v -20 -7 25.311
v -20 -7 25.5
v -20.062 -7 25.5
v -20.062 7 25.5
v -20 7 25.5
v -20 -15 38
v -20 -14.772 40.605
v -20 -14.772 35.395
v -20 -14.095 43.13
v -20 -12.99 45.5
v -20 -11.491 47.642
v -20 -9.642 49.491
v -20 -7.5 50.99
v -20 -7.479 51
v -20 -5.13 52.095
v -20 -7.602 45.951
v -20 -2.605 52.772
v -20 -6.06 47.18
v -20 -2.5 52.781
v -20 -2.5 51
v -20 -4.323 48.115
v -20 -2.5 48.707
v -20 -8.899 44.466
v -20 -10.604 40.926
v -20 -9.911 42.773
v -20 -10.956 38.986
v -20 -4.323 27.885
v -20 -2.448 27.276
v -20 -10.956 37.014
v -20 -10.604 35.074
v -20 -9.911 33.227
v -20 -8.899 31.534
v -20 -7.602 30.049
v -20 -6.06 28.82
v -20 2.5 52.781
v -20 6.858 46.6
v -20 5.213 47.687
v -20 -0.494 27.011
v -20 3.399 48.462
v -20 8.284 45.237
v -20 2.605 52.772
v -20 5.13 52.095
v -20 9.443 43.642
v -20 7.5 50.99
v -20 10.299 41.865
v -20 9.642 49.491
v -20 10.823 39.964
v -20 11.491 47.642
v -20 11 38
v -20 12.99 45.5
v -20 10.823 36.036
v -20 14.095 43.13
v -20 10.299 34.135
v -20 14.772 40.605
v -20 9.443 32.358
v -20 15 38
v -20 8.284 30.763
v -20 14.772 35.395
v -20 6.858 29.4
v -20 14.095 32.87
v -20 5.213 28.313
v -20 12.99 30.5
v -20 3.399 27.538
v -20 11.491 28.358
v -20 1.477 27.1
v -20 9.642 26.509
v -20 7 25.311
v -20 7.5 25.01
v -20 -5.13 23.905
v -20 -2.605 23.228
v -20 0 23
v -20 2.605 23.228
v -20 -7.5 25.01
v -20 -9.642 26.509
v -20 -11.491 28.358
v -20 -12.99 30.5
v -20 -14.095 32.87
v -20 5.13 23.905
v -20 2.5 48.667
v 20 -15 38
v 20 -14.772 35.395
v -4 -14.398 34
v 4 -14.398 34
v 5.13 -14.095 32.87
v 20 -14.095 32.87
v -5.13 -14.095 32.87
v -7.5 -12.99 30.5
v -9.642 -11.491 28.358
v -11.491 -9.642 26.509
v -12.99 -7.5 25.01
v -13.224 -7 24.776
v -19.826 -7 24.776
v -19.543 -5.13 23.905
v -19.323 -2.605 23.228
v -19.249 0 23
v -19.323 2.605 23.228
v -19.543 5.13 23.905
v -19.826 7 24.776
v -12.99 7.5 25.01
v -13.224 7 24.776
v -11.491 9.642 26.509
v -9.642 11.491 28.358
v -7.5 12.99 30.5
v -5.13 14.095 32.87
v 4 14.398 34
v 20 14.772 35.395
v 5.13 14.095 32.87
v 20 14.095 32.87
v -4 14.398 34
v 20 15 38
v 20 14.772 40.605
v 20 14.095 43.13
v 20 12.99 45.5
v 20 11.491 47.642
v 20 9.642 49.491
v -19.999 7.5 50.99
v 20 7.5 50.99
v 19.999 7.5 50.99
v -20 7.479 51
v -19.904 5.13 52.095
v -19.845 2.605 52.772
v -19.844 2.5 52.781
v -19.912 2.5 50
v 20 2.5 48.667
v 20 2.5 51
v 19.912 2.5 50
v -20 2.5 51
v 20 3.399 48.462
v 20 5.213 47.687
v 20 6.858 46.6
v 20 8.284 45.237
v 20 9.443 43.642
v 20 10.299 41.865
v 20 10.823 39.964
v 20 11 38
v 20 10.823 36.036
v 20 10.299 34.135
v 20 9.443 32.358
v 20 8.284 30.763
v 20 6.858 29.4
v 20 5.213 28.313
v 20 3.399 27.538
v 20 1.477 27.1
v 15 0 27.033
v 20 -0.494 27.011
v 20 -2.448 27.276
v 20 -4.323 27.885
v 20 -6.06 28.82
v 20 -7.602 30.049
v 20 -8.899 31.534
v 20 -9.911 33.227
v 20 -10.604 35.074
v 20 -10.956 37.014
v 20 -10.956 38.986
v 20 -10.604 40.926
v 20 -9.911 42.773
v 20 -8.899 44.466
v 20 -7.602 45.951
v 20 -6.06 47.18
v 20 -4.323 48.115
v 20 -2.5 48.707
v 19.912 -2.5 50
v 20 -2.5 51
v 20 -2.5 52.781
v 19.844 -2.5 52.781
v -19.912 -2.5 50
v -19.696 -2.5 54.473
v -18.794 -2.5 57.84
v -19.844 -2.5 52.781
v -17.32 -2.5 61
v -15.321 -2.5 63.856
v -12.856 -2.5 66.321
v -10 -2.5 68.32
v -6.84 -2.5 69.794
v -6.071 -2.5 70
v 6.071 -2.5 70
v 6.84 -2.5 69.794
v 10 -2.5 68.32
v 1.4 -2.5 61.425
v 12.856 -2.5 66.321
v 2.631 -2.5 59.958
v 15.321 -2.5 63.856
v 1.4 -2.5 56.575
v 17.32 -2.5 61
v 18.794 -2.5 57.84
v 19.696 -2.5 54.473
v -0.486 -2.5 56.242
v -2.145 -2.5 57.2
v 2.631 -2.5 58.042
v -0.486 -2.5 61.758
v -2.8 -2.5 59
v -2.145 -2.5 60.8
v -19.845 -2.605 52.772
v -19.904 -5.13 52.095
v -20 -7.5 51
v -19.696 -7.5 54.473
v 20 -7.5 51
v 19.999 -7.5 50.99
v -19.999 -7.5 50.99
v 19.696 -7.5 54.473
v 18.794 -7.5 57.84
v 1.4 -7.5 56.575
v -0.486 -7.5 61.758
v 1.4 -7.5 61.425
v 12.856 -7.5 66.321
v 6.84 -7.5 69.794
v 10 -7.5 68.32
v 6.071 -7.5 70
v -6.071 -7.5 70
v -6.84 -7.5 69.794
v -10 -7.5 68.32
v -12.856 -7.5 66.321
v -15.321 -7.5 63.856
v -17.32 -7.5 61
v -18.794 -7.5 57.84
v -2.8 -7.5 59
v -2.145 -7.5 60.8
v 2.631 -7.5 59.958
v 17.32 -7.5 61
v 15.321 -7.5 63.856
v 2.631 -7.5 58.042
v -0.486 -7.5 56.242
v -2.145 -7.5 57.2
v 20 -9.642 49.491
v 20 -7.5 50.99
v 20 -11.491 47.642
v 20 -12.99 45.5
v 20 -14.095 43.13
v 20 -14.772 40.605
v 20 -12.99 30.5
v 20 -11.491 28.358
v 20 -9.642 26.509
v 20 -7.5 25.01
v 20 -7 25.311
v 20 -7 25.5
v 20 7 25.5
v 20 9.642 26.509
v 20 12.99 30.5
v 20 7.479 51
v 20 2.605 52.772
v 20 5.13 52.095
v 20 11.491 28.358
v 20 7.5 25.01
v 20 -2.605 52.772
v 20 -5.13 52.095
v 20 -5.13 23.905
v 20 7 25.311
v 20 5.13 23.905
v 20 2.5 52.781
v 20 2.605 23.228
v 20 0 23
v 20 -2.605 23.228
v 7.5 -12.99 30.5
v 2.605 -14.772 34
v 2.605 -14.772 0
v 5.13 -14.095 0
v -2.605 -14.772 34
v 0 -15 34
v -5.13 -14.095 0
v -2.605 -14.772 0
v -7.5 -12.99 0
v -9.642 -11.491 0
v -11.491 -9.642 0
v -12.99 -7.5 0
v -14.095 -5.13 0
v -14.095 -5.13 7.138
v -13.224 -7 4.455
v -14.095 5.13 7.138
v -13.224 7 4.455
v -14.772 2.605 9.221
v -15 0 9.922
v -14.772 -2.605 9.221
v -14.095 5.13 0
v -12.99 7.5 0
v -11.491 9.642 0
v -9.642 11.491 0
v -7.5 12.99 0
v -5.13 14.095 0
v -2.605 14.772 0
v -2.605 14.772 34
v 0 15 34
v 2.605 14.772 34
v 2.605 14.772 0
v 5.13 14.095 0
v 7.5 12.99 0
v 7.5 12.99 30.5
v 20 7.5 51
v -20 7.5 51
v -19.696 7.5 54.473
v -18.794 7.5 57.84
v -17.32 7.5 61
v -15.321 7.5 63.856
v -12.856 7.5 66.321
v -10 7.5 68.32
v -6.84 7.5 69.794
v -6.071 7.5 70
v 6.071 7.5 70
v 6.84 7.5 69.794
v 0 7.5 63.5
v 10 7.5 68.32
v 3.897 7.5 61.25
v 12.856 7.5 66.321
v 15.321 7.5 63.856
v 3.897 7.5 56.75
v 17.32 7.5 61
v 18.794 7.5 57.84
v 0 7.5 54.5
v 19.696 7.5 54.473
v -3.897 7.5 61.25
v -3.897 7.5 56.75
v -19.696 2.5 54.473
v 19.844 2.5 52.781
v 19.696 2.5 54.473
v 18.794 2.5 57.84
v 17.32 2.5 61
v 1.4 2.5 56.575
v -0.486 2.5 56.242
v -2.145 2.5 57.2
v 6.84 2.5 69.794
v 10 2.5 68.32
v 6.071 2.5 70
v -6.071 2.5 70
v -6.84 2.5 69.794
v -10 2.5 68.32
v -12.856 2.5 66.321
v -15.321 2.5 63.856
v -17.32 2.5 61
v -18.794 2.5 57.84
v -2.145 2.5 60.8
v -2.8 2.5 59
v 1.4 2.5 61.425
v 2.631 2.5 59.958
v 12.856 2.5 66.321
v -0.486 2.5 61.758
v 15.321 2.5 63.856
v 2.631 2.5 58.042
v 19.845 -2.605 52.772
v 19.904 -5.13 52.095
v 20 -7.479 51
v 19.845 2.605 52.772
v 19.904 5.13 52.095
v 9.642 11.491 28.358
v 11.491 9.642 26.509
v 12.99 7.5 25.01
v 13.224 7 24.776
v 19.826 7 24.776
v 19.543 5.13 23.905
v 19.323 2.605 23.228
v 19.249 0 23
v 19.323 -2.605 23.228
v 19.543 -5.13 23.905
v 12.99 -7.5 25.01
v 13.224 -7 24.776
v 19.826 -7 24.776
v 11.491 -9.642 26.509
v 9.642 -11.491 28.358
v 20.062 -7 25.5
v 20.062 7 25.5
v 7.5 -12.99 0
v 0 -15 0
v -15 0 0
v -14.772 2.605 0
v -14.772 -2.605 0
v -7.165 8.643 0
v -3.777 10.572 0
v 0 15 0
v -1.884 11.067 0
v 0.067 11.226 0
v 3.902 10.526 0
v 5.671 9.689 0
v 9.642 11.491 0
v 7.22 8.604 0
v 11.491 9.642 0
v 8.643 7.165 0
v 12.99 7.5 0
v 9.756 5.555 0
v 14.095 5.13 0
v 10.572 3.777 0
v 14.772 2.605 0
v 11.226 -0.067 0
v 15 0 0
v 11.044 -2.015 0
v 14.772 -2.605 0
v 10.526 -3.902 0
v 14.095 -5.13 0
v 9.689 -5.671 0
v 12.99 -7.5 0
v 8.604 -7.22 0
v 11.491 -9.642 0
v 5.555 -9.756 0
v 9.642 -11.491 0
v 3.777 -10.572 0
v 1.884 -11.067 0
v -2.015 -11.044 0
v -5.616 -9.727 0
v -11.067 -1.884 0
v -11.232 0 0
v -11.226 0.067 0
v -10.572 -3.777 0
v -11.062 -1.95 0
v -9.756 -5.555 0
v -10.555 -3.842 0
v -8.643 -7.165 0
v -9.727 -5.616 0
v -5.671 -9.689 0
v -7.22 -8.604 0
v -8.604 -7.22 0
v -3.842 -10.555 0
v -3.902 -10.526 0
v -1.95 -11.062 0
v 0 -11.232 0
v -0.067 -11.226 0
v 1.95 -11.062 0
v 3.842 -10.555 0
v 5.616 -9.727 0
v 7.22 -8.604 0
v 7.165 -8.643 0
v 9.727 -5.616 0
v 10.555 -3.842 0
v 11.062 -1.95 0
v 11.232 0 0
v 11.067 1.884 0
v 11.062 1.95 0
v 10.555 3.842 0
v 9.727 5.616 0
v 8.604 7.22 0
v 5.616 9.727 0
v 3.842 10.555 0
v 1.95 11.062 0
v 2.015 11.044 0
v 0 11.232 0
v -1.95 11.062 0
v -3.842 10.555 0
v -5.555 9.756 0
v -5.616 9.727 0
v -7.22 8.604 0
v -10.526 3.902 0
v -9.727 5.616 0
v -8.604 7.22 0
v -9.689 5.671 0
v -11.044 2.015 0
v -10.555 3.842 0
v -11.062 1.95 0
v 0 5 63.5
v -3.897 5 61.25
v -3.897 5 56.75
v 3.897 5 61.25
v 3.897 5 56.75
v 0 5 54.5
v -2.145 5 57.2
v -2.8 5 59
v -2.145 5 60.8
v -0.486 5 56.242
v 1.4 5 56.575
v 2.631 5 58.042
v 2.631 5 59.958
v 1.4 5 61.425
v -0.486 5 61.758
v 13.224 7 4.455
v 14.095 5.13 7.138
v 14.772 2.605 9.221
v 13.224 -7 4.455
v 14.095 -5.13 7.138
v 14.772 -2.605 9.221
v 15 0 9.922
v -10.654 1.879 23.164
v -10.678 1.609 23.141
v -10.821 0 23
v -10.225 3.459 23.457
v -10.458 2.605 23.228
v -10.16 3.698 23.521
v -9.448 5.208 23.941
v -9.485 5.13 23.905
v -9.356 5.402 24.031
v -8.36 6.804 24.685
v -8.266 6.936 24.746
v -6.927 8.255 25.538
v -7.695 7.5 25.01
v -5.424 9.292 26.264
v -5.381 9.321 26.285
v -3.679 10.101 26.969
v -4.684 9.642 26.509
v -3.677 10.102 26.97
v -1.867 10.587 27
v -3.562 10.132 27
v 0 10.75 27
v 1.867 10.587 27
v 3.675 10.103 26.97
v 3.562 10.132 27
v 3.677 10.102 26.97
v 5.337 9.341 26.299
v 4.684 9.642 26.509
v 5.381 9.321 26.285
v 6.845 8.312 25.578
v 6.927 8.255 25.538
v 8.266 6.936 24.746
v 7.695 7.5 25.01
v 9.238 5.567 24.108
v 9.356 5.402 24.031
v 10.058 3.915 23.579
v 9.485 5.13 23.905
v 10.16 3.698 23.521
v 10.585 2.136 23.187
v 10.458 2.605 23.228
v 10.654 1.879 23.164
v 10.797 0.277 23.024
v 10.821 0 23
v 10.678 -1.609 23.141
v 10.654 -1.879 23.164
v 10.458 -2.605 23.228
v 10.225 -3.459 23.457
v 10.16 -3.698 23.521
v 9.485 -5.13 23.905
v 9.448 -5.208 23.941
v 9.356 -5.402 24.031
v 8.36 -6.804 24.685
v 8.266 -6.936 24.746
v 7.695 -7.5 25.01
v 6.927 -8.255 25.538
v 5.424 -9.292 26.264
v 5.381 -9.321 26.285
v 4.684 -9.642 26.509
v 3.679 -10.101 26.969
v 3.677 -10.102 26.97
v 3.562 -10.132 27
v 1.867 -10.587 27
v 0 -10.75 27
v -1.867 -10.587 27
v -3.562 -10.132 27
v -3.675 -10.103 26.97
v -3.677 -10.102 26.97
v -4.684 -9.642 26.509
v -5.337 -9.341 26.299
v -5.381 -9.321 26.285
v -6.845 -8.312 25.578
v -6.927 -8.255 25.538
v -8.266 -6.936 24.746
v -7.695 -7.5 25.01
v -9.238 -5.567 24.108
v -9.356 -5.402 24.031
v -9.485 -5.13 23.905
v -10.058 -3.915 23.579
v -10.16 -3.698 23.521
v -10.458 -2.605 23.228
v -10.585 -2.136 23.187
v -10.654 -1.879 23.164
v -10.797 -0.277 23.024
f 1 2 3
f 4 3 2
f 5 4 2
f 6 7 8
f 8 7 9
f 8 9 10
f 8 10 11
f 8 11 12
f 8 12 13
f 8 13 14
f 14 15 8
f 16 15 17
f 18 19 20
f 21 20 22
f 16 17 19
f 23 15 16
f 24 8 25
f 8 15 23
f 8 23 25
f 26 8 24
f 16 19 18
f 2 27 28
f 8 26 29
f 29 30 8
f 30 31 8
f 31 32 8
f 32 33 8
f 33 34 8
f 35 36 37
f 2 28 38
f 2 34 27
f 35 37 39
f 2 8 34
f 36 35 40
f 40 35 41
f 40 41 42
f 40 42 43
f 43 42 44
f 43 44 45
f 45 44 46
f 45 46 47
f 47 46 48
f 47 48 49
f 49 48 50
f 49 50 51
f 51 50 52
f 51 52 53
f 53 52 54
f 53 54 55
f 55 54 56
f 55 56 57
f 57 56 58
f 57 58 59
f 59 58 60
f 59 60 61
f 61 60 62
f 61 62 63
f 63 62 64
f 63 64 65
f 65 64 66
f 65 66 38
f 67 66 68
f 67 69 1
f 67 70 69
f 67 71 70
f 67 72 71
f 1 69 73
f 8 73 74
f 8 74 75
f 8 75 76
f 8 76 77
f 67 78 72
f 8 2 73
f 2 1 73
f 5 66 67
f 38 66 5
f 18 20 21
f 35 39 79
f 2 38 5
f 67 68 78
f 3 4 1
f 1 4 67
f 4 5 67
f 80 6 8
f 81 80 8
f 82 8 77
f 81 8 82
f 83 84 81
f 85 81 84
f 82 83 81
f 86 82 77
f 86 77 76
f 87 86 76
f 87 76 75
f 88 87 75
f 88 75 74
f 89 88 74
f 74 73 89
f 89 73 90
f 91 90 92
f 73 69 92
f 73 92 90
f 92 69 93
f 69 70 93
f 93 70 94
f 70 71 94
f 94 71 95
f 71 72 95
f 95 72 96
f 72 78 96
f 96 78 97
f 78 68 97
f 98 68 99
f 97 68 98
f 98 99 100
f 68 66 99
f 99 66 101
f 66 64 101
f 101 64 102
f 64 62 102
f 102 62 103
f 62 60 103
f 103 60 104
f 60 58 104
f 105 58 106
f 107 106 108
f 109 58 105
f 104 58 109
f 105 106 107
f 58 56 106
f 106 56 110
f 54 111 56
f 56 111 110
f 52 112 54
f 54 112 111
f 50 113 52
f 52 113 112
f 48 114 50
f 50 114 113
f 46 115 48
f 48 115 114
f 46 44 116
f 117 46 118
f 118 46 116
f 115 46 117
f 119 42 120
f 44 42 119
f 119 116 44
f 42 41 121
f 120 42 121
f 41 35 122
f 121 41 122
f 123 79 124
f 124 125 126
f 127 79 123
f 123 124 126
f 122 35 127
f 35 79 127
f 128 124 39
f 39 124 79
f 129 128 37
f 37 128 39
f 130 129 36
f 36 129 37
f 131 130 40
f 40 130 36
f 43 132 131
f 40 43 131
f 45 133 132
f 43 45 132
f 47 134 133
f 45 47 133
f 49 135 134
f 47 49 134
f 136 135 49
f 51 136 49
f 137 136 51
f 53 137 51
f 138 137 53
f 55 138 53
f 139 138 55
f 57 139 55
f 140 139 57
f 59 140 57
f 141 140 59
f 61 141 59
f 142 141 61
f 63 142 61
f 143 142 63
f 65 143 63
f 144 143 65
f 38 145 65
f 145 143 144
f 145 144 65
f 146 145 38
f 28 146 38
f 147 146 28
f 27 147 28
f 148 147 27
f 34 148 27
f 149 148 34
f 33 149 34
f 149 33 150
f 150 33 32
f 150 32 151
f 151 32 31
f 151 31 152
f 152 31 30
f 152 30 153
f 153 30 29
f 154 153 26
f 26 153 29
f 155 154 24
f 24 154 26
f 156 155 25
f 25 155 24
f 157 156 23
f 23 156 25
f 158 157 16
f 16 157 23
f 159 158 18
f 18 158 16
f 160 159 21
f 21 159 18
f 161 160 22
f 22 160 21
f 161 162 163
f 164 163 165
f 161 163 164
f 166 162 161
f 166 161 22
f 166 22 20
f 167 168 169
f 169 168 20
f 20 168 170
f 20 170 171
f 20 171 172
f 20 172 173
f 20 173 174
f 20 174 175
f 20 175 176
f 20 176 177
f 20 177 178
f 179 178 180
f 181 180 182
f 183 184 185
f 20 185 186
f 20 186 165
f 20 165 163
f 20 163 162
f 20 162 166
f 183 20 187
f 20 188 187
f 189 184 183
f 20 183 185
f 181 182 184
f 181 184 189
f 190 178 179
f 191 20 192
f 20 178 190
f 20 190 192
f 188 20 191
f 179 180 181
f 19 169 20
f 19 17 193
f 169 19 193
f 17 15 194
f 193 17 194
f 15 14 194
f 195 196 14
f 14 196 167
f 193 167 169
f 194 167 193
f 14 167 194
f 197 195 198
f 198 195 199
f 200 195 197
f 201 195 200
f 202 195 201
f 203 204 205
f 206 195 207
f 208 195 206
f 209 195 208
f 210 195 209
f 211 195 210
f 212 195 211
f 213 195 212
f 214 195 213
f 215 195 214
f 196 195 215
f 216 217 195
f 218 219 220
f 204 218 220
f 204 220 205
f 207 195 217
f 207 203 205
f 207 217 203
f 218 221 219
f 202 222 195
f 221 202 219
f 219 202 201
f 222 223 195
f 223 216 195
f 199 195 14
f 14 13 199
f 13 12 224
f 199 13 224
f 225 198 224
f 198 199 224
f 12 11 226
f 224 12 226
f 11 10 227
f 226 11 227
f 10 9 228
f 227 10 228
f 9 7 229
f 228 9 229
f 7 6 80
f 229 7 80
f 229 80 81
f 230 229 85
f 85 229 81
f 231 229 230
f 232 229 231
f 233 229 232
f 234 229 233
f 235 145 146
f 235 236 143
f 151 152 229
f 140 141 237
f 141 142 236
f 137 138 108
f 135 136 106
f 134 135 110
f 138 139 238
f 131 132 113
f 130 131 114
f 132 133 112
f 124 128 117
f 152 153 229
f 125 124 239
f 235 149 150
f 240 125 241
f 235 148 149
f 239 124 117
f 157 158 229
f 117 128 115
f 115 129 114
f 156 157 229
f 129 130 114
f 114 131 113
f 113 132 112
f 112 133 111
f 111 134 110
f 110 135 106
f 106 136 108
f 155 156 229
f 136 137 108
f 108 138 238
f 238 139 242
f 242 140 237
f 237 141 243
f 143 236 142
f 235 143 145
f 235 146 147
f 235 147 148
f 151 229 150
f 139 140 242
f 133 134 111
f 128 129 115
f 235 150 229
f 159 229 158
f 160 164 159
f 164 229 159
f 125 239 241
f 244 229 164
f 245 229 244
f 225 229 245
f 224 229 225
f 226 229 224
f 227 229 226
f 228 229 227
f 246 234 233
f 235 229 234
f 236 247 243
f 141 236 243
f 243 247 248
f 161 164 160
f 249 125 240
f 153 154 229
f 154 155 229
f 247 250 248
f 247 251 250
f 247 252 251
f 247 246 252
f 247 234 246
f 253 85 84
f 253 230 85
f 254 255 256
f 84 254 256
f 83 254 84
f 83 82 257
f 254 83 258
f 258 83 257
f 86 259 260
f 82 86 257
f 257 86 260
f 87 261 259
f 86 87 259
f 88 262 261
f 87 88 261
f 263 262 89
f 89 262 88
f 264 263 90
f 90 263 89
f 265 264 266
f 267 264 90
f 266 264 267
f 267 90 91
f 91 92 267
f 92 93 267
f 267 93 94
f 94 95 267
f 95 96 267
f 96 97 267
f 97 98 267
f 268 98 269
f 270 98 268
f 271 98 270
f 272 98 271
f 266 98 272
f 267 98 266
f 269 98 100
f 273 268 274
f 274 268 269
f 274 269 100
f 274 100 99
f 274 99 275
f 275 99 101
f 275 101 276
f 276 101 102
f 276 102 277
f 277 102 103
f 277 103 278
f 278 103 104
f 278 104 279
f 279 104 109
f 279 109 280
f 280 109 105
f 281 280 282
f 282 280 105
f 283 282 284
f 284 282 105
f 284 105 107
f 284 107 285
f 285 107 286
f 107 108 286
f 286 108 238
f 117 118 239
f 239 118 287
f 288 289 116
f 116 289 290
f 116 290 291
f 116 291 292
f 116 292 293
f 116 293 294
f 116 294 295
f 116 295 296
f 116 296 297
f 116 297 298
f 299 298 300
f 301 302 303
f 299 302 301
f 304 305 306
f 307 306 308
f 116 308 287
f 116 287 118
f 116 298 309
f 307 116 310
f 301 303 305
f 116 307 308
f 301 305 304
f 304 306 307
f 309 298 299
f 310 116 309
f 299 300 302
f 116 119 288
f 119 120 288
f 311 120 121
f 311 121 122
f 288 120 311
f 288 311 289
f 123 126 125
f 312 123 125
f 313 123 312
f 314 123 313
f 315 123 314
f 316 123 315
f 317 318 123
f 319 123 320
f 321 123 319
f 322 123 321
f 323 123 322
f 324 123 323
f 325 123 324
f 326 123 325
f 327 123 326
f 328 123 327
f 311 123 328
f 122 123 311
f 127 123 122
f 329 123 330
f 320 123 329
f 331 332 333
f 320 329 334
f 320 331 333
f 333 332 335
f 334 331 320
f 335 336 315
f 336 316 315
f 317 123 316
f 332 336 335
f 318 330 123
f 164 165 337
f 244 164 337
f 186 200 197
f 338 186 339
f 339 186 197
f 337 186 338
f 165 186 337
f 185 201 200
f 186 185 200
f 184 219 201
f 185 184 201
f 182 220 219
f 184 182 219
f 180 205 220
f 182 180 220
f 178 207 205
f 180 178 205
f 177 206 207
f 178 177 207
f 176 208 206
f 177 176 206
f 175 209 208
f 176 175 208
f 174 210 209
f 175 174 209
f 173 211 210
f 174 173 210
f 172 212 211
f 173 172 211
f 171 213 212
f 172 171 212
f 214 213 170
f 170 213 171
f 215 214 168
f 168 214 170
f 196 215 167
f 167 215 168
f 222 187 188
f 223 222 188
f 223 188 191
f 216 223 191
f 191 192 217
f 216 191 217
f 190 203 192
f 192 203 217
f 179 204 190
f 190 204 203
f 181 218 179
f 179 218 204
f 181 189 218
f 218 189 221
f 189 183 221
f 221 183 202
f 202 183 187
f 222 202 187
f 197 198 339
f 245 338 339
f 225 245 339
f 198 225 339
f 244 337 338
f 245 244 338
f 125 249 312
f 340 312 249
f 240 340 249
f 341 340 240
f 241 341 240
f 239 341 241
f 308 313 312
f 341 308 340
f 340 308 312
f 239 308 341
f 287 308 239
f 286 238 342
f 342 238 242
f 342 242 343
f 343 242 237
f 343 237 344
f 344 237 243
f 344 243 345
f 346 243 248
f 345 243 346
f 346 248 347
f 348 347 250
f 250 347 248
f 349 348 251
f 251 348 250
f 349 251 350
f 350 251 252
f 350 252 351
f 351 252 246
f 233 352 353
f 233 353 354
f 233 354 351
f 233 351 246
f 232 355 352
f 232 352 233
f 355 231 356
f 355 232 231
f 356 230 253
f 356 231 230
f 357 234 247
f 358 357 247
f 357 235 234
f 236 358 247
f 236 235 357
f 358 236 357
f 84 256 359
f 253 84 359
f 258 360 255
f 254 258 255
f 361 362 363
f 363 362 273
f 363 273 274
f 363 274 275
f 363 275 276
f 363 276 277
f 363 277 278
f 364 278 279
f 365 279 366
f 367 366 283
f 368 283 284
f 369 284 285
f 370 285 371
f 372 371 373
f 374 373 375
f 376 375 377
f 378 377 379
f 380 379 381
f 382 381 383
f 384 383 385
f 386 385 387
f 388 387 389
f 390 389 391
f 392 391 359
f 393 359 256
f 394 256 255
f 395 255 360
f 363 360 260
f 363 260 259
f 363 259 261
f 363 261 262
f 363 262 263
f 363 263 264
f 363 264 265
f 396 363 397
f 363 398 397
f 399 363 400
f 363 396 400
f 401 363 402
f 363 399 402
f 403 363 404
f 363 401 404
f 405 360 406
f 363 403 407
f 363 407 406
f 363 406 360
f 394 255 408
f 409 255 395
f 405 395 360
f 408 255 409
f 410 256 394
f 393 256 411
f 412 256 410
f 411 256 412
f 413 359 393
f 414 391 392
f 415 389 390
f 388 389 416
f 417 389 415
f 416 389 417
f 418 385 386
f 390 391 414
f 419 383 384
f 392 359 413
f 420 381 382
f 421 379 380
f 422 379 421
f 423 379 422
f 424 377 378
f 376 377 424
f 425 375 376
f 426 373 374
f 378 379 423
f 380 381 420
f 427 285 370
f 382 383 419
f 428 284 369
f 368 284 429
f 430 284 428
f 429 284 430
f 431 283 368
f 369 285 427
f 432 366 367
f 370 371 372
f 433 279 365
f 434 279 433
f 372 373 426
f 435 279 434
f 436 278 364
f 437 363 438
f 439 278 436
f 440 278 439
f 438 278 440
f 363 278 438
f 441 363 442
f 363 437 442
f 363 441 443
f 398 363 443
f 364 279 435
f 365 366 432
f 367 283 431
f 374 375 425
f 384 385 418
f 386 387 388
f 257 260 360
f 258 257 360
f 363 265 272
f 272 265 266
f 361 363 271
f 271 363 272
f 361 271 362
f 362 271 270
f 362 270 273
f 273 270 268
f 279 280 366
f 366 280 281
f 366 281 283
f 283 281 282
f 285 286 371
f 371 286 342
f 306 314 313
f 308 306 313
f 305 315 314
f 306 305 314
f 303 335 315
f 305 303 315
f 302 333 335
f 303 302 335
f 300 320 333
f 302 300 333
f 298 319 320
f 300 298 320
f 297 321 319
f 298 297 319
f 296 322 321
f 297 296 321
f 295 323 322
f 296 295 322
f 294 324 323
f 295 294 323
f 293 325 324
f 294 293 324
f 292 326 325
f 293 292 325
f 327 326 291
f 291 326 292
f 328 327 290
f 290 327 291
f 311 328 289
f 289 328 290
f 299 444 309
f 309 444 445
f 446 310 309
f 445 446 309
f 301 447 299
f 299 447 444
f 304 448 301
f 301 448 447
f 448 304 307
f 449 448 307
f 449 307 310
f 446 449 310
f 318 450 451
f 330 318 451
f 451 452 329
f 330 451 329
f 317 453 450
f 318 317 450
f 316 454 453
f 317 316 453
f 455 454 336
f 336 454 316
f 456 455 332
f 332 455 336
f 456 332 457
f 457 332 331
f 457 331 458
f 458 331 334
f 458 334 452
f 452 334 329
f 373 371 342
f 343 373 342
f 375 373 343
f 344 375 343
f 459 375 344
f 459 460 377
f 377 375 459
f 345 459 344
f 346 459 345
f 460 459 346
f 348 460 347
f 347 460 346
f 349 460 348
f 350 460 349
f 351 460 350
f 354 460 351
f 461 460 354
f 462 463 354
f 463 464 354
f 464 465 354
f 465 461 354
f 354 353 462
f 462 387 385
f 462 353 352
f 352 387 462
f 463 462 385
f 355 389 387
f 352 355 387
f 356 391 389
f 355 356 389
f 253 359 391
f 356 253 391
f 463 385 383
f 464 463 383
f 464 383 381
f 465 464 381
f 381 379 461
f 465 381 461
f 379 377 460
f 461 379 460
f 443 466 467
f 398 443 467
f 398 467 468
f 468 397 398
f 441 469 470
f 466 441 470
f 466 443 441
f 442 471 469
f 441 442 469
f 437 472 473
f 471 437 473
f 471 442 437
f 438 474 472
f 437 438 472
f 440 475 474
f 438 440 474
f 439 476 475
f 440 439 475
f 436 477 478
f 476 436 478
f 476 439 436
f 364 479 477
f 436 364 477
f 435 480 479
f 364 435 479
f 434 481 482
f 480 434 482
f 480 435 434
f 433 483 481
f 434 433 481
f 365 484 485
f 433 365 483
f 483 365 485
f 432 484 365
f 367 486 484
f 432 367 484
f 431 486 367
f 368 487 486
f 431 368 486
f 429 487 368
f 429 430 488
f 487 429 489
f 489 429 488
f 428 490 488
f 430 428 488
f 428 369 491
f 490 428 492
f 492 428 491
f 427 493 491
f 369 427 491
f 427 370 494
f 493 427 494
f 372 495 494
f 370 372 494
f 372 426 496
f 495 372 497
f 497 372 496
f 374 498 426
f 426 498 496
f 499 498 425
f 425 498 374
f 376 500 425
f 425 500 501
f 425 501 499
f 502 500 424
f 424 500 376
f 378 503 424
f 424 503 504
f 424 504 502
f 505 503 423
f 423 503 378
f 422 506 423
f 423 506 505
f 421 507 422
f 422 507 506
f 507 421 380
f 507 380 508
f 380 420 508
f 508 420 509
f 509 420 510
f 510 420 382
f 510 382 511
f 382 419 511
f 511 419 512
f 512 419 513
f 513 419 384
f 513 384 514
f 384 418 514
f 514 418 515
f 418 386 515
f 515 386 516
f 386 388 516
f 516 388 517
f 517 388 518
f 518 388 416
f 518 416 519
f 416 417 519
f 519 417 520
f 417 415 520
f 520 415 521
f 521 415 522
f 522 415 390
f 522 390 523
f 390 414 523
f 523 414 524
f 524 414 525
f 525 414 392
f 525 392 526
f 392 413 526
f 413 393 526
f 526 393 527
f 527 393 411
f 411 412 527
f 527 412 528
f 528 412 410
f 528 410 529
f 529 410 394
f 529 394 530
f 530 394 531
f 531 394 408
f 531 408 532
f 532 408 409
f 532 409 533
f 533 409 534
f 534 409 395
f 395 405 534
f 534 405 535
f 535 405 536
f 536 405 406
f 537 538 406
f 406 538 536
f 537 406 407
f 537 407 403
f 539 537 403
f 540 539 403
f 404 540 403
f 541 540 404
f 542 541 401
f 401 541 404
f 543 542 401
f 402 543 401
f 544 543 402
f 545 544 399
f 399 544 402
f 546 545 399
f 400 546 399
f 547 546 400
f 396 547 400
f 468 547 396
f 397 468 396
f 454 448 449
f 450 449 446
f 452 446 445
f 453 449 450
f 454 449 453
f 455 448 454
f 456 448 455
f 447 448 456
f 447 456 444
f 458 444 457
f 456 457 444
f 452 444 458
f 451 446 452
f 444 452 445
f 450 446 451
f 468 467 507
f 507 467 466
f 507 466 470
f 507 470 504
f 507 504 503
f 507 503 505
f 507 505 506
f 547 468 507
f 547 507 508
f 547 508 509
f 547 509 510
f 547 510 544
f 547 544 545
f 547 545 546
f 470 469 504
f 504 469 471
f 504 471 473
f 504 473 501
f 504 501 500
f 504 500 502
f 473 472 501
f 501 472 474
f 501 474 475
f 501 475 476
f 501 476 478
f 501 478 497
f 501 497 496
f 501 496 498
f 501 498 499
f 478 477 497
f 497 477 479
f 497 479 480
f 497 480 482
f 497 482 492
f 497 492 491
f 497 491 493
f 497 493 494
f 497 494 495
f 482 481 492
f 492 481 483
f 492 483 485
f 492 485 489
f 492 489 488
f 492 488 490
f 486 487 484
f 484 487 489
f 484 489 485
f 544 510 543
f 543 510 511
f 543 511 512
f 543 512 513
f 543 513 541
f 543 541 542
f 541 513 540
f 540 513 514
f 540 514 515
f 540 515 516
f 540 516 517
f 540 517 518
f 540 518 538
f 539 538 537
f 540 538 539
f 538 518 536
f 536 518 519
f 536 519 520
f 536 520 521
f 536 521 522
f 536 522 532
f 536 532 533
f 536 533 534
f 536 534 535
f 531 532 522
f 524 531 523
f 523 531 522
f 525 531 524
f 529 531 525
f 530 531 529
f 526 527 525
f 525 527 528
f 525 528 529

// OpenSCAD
// spoke_clamp.scad
//
// Filiment Holder Spoke Clamp Layout in the Z direction centered at X=0, Y=0
//
//
// Fillet generates a fillet
//    X mm wide, 
//    Y mm long, 
//    Z height determined by the angle (deg) with the x-y plane
//
//   Note: ang is limited to a 0 - 90 degree range
//
module fillet(x,y,ang)  
{
//   hyp is the hypotenuse (diagonal) of the subtracting cube
      hyp=sqrt((y+2)*(y+2) + (y+2)*(y+2)*tan(ang)*tan(ang));
   intersection ()    
   {
      cube(size=[x,y,y*tan(ang)], center=true);

      rotate ([90-ang,0,0]) 
         translate ([0, -0.5*(hyp)*cos(ang), 0]) {
            cube(size=[x+2,y+2,(hyp)], center=true);
        }
    }
}
module cup() {
      difference ()    {
         rotate ([0,0,0])
            translate ([0, 0, 11]) {
            cylinder (h=34, r=15, $fa=10, center = true);
            }
//   remove the PVC cup
         rotate ([0,0,0])
            translate ([0, 0, 15]) {
            cylinder (h=28, r1=10.75, r2=11.25, $fa=10, center = true);
            }
//    remove the piece sticking into the clamp
         rotate ([0,90,0])
            translate ([11, 0, 0]) {
            cylinder (h=30, r=14, $fa=10, center = true);
            }
        }
    }
module split_ring() {
   translate ([0, 0, 0]) {
      difference () {
         cylinder (h=40, r=15, $fa=10, center = true);
            union() {
                  translate ([0, 10, 0]) {
                     cube (size = [5, 20, 66], center = true);
                  }
                   translate ([0, 0, 10]) {
                      cylinder (h=66, r=11, $fa=10, center = true);
                   }
             }
        }
    }
 }
module screw_nut() {
         translate ([0, 0, 0]) 
            rotate ([0,90,0]) {
               union() {
                  cylinder (h=40, r=2.8, $fa=10, center = true);
                  translate ([0,0,10]) 
                     rotate ([0,0,30]) {
                        cylinder (h=8, r=4.5, $fa=60, center = true);
                     } 
               }
            }
        }
module clamp() {
   difference () {
      intersection () {
         union() {
            translate ([5, 20, 0]) {
               cube (size = [5, 20, 40], center = true);
               }
            translate ([-5, 20, 0]) {
               cube (size = [5, 20, 40], center = true);
               }
         }
         translate ([0, 11, 0]) 
            rotate ([0,90,0]) {
               cylinder (h=40, r=20, $fa=10, center = true);
         } 
      }
      translate ([-1, 19, 0]) {
         screw_nut ();
      }
   }
}
module spoke_clamp() {
         translate ([0, 0, 38]) 
            rotate ([90,0,0]) {
               union() {
                  translate ([-16,-25, 0]) 
                     rotate ([180,90,0]) {
                        fillet (14,25,18);
                     }
                  translate ([16,-25, 0]) 
                     rotate ([180,-90,0]) {
                        fillet (14,25,18);
                     }
                  translate ([0,-10, 0]) 
                     rotate ([90,0,0]) {
                        cup();
                     }
                  translate ([0, 0, 0]) 
                     rotate ([0,90,0]) {
                        split_ring();
                     }
                  translate ([0, 2, 0]) 
                     rotate ([0,90,0]) {
                        clamp();
                     }
                }
            }
   }
spoke_clamp();
//cup();
//fillet();
